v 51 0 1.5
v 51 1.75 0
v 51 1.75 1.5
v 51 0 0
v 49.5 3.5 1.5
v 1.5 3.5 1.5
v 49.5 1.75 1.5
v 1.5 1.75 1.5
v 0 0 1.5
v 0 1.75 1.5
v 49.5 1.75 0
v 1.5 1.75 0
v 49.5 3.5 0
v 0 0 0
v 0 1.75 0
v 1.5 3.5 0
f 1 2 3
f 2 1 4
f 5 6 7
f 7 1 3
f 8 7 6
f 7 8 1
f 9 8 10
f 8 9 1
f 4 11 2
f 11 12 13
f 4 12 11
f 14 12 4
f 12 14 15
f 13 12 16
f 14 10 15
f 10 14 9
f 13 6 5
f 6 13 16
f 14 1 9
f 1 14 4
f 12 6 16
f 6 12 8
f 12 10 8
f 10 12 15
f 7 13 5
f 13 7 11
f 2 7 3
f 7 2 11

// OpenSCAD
// file: ../config.scad
// height of desktop and shelves
desktop_shelf_color="Sienna";
desktop_height=31;
desktop_thickness=1;
table_width=96;
table_depth=36;
shelf_thickness=0.5;
shelf_height=10;
top_shelf_height=72.5;

// Legs
leg_color="BurlyWood";
front_leg_length=desktop_height;
rear_leg_length=top_shelf_height-shelf_thickness;
leg_timber_width=1.5;
leg_timber_depth=3.5;
center_leg_timber_width=1.5;
center_leg_timber_depth=3.5;
center_leg_setback=24;

// Plates
front_rear_strut_color="silver";
side_strut_color="blue";
strut_timber_depth=1.5;
strut_timber_height=3.5;
top_shelf_timber_depth=1.5;
top_shelf_timber_height=3.5;
// file: ../components/hutch_shelf_support.scad
module hutch_shelf_support()
{
    include <../config.scad>
    echo(str("BOM ITEM: hutch_shelf_support"));
    render() { // see note in README about rendering
        difference() {
            cube([(table_width/2)+(center_leg_timber_width*2),strut_timber_height,strut_timber_depth],false);
            translate([0,center_leg_timber_depth/2,0]){
              cube([center_leg_timber_width,center_leg_timber_depth/2,strut_timber_depth],false);
            }
            translate([(table_width/2)+center_leg_timber_width,center_leg_timber_depth/2,0]){
              cube([center_leg_timber_width,center_leg_timber_depth/2,strut_timber_depth],false);
            }
        }
    }
}
// main file
use <../components/hutch_shelf_support.scad>

hutch_shelf_support();
